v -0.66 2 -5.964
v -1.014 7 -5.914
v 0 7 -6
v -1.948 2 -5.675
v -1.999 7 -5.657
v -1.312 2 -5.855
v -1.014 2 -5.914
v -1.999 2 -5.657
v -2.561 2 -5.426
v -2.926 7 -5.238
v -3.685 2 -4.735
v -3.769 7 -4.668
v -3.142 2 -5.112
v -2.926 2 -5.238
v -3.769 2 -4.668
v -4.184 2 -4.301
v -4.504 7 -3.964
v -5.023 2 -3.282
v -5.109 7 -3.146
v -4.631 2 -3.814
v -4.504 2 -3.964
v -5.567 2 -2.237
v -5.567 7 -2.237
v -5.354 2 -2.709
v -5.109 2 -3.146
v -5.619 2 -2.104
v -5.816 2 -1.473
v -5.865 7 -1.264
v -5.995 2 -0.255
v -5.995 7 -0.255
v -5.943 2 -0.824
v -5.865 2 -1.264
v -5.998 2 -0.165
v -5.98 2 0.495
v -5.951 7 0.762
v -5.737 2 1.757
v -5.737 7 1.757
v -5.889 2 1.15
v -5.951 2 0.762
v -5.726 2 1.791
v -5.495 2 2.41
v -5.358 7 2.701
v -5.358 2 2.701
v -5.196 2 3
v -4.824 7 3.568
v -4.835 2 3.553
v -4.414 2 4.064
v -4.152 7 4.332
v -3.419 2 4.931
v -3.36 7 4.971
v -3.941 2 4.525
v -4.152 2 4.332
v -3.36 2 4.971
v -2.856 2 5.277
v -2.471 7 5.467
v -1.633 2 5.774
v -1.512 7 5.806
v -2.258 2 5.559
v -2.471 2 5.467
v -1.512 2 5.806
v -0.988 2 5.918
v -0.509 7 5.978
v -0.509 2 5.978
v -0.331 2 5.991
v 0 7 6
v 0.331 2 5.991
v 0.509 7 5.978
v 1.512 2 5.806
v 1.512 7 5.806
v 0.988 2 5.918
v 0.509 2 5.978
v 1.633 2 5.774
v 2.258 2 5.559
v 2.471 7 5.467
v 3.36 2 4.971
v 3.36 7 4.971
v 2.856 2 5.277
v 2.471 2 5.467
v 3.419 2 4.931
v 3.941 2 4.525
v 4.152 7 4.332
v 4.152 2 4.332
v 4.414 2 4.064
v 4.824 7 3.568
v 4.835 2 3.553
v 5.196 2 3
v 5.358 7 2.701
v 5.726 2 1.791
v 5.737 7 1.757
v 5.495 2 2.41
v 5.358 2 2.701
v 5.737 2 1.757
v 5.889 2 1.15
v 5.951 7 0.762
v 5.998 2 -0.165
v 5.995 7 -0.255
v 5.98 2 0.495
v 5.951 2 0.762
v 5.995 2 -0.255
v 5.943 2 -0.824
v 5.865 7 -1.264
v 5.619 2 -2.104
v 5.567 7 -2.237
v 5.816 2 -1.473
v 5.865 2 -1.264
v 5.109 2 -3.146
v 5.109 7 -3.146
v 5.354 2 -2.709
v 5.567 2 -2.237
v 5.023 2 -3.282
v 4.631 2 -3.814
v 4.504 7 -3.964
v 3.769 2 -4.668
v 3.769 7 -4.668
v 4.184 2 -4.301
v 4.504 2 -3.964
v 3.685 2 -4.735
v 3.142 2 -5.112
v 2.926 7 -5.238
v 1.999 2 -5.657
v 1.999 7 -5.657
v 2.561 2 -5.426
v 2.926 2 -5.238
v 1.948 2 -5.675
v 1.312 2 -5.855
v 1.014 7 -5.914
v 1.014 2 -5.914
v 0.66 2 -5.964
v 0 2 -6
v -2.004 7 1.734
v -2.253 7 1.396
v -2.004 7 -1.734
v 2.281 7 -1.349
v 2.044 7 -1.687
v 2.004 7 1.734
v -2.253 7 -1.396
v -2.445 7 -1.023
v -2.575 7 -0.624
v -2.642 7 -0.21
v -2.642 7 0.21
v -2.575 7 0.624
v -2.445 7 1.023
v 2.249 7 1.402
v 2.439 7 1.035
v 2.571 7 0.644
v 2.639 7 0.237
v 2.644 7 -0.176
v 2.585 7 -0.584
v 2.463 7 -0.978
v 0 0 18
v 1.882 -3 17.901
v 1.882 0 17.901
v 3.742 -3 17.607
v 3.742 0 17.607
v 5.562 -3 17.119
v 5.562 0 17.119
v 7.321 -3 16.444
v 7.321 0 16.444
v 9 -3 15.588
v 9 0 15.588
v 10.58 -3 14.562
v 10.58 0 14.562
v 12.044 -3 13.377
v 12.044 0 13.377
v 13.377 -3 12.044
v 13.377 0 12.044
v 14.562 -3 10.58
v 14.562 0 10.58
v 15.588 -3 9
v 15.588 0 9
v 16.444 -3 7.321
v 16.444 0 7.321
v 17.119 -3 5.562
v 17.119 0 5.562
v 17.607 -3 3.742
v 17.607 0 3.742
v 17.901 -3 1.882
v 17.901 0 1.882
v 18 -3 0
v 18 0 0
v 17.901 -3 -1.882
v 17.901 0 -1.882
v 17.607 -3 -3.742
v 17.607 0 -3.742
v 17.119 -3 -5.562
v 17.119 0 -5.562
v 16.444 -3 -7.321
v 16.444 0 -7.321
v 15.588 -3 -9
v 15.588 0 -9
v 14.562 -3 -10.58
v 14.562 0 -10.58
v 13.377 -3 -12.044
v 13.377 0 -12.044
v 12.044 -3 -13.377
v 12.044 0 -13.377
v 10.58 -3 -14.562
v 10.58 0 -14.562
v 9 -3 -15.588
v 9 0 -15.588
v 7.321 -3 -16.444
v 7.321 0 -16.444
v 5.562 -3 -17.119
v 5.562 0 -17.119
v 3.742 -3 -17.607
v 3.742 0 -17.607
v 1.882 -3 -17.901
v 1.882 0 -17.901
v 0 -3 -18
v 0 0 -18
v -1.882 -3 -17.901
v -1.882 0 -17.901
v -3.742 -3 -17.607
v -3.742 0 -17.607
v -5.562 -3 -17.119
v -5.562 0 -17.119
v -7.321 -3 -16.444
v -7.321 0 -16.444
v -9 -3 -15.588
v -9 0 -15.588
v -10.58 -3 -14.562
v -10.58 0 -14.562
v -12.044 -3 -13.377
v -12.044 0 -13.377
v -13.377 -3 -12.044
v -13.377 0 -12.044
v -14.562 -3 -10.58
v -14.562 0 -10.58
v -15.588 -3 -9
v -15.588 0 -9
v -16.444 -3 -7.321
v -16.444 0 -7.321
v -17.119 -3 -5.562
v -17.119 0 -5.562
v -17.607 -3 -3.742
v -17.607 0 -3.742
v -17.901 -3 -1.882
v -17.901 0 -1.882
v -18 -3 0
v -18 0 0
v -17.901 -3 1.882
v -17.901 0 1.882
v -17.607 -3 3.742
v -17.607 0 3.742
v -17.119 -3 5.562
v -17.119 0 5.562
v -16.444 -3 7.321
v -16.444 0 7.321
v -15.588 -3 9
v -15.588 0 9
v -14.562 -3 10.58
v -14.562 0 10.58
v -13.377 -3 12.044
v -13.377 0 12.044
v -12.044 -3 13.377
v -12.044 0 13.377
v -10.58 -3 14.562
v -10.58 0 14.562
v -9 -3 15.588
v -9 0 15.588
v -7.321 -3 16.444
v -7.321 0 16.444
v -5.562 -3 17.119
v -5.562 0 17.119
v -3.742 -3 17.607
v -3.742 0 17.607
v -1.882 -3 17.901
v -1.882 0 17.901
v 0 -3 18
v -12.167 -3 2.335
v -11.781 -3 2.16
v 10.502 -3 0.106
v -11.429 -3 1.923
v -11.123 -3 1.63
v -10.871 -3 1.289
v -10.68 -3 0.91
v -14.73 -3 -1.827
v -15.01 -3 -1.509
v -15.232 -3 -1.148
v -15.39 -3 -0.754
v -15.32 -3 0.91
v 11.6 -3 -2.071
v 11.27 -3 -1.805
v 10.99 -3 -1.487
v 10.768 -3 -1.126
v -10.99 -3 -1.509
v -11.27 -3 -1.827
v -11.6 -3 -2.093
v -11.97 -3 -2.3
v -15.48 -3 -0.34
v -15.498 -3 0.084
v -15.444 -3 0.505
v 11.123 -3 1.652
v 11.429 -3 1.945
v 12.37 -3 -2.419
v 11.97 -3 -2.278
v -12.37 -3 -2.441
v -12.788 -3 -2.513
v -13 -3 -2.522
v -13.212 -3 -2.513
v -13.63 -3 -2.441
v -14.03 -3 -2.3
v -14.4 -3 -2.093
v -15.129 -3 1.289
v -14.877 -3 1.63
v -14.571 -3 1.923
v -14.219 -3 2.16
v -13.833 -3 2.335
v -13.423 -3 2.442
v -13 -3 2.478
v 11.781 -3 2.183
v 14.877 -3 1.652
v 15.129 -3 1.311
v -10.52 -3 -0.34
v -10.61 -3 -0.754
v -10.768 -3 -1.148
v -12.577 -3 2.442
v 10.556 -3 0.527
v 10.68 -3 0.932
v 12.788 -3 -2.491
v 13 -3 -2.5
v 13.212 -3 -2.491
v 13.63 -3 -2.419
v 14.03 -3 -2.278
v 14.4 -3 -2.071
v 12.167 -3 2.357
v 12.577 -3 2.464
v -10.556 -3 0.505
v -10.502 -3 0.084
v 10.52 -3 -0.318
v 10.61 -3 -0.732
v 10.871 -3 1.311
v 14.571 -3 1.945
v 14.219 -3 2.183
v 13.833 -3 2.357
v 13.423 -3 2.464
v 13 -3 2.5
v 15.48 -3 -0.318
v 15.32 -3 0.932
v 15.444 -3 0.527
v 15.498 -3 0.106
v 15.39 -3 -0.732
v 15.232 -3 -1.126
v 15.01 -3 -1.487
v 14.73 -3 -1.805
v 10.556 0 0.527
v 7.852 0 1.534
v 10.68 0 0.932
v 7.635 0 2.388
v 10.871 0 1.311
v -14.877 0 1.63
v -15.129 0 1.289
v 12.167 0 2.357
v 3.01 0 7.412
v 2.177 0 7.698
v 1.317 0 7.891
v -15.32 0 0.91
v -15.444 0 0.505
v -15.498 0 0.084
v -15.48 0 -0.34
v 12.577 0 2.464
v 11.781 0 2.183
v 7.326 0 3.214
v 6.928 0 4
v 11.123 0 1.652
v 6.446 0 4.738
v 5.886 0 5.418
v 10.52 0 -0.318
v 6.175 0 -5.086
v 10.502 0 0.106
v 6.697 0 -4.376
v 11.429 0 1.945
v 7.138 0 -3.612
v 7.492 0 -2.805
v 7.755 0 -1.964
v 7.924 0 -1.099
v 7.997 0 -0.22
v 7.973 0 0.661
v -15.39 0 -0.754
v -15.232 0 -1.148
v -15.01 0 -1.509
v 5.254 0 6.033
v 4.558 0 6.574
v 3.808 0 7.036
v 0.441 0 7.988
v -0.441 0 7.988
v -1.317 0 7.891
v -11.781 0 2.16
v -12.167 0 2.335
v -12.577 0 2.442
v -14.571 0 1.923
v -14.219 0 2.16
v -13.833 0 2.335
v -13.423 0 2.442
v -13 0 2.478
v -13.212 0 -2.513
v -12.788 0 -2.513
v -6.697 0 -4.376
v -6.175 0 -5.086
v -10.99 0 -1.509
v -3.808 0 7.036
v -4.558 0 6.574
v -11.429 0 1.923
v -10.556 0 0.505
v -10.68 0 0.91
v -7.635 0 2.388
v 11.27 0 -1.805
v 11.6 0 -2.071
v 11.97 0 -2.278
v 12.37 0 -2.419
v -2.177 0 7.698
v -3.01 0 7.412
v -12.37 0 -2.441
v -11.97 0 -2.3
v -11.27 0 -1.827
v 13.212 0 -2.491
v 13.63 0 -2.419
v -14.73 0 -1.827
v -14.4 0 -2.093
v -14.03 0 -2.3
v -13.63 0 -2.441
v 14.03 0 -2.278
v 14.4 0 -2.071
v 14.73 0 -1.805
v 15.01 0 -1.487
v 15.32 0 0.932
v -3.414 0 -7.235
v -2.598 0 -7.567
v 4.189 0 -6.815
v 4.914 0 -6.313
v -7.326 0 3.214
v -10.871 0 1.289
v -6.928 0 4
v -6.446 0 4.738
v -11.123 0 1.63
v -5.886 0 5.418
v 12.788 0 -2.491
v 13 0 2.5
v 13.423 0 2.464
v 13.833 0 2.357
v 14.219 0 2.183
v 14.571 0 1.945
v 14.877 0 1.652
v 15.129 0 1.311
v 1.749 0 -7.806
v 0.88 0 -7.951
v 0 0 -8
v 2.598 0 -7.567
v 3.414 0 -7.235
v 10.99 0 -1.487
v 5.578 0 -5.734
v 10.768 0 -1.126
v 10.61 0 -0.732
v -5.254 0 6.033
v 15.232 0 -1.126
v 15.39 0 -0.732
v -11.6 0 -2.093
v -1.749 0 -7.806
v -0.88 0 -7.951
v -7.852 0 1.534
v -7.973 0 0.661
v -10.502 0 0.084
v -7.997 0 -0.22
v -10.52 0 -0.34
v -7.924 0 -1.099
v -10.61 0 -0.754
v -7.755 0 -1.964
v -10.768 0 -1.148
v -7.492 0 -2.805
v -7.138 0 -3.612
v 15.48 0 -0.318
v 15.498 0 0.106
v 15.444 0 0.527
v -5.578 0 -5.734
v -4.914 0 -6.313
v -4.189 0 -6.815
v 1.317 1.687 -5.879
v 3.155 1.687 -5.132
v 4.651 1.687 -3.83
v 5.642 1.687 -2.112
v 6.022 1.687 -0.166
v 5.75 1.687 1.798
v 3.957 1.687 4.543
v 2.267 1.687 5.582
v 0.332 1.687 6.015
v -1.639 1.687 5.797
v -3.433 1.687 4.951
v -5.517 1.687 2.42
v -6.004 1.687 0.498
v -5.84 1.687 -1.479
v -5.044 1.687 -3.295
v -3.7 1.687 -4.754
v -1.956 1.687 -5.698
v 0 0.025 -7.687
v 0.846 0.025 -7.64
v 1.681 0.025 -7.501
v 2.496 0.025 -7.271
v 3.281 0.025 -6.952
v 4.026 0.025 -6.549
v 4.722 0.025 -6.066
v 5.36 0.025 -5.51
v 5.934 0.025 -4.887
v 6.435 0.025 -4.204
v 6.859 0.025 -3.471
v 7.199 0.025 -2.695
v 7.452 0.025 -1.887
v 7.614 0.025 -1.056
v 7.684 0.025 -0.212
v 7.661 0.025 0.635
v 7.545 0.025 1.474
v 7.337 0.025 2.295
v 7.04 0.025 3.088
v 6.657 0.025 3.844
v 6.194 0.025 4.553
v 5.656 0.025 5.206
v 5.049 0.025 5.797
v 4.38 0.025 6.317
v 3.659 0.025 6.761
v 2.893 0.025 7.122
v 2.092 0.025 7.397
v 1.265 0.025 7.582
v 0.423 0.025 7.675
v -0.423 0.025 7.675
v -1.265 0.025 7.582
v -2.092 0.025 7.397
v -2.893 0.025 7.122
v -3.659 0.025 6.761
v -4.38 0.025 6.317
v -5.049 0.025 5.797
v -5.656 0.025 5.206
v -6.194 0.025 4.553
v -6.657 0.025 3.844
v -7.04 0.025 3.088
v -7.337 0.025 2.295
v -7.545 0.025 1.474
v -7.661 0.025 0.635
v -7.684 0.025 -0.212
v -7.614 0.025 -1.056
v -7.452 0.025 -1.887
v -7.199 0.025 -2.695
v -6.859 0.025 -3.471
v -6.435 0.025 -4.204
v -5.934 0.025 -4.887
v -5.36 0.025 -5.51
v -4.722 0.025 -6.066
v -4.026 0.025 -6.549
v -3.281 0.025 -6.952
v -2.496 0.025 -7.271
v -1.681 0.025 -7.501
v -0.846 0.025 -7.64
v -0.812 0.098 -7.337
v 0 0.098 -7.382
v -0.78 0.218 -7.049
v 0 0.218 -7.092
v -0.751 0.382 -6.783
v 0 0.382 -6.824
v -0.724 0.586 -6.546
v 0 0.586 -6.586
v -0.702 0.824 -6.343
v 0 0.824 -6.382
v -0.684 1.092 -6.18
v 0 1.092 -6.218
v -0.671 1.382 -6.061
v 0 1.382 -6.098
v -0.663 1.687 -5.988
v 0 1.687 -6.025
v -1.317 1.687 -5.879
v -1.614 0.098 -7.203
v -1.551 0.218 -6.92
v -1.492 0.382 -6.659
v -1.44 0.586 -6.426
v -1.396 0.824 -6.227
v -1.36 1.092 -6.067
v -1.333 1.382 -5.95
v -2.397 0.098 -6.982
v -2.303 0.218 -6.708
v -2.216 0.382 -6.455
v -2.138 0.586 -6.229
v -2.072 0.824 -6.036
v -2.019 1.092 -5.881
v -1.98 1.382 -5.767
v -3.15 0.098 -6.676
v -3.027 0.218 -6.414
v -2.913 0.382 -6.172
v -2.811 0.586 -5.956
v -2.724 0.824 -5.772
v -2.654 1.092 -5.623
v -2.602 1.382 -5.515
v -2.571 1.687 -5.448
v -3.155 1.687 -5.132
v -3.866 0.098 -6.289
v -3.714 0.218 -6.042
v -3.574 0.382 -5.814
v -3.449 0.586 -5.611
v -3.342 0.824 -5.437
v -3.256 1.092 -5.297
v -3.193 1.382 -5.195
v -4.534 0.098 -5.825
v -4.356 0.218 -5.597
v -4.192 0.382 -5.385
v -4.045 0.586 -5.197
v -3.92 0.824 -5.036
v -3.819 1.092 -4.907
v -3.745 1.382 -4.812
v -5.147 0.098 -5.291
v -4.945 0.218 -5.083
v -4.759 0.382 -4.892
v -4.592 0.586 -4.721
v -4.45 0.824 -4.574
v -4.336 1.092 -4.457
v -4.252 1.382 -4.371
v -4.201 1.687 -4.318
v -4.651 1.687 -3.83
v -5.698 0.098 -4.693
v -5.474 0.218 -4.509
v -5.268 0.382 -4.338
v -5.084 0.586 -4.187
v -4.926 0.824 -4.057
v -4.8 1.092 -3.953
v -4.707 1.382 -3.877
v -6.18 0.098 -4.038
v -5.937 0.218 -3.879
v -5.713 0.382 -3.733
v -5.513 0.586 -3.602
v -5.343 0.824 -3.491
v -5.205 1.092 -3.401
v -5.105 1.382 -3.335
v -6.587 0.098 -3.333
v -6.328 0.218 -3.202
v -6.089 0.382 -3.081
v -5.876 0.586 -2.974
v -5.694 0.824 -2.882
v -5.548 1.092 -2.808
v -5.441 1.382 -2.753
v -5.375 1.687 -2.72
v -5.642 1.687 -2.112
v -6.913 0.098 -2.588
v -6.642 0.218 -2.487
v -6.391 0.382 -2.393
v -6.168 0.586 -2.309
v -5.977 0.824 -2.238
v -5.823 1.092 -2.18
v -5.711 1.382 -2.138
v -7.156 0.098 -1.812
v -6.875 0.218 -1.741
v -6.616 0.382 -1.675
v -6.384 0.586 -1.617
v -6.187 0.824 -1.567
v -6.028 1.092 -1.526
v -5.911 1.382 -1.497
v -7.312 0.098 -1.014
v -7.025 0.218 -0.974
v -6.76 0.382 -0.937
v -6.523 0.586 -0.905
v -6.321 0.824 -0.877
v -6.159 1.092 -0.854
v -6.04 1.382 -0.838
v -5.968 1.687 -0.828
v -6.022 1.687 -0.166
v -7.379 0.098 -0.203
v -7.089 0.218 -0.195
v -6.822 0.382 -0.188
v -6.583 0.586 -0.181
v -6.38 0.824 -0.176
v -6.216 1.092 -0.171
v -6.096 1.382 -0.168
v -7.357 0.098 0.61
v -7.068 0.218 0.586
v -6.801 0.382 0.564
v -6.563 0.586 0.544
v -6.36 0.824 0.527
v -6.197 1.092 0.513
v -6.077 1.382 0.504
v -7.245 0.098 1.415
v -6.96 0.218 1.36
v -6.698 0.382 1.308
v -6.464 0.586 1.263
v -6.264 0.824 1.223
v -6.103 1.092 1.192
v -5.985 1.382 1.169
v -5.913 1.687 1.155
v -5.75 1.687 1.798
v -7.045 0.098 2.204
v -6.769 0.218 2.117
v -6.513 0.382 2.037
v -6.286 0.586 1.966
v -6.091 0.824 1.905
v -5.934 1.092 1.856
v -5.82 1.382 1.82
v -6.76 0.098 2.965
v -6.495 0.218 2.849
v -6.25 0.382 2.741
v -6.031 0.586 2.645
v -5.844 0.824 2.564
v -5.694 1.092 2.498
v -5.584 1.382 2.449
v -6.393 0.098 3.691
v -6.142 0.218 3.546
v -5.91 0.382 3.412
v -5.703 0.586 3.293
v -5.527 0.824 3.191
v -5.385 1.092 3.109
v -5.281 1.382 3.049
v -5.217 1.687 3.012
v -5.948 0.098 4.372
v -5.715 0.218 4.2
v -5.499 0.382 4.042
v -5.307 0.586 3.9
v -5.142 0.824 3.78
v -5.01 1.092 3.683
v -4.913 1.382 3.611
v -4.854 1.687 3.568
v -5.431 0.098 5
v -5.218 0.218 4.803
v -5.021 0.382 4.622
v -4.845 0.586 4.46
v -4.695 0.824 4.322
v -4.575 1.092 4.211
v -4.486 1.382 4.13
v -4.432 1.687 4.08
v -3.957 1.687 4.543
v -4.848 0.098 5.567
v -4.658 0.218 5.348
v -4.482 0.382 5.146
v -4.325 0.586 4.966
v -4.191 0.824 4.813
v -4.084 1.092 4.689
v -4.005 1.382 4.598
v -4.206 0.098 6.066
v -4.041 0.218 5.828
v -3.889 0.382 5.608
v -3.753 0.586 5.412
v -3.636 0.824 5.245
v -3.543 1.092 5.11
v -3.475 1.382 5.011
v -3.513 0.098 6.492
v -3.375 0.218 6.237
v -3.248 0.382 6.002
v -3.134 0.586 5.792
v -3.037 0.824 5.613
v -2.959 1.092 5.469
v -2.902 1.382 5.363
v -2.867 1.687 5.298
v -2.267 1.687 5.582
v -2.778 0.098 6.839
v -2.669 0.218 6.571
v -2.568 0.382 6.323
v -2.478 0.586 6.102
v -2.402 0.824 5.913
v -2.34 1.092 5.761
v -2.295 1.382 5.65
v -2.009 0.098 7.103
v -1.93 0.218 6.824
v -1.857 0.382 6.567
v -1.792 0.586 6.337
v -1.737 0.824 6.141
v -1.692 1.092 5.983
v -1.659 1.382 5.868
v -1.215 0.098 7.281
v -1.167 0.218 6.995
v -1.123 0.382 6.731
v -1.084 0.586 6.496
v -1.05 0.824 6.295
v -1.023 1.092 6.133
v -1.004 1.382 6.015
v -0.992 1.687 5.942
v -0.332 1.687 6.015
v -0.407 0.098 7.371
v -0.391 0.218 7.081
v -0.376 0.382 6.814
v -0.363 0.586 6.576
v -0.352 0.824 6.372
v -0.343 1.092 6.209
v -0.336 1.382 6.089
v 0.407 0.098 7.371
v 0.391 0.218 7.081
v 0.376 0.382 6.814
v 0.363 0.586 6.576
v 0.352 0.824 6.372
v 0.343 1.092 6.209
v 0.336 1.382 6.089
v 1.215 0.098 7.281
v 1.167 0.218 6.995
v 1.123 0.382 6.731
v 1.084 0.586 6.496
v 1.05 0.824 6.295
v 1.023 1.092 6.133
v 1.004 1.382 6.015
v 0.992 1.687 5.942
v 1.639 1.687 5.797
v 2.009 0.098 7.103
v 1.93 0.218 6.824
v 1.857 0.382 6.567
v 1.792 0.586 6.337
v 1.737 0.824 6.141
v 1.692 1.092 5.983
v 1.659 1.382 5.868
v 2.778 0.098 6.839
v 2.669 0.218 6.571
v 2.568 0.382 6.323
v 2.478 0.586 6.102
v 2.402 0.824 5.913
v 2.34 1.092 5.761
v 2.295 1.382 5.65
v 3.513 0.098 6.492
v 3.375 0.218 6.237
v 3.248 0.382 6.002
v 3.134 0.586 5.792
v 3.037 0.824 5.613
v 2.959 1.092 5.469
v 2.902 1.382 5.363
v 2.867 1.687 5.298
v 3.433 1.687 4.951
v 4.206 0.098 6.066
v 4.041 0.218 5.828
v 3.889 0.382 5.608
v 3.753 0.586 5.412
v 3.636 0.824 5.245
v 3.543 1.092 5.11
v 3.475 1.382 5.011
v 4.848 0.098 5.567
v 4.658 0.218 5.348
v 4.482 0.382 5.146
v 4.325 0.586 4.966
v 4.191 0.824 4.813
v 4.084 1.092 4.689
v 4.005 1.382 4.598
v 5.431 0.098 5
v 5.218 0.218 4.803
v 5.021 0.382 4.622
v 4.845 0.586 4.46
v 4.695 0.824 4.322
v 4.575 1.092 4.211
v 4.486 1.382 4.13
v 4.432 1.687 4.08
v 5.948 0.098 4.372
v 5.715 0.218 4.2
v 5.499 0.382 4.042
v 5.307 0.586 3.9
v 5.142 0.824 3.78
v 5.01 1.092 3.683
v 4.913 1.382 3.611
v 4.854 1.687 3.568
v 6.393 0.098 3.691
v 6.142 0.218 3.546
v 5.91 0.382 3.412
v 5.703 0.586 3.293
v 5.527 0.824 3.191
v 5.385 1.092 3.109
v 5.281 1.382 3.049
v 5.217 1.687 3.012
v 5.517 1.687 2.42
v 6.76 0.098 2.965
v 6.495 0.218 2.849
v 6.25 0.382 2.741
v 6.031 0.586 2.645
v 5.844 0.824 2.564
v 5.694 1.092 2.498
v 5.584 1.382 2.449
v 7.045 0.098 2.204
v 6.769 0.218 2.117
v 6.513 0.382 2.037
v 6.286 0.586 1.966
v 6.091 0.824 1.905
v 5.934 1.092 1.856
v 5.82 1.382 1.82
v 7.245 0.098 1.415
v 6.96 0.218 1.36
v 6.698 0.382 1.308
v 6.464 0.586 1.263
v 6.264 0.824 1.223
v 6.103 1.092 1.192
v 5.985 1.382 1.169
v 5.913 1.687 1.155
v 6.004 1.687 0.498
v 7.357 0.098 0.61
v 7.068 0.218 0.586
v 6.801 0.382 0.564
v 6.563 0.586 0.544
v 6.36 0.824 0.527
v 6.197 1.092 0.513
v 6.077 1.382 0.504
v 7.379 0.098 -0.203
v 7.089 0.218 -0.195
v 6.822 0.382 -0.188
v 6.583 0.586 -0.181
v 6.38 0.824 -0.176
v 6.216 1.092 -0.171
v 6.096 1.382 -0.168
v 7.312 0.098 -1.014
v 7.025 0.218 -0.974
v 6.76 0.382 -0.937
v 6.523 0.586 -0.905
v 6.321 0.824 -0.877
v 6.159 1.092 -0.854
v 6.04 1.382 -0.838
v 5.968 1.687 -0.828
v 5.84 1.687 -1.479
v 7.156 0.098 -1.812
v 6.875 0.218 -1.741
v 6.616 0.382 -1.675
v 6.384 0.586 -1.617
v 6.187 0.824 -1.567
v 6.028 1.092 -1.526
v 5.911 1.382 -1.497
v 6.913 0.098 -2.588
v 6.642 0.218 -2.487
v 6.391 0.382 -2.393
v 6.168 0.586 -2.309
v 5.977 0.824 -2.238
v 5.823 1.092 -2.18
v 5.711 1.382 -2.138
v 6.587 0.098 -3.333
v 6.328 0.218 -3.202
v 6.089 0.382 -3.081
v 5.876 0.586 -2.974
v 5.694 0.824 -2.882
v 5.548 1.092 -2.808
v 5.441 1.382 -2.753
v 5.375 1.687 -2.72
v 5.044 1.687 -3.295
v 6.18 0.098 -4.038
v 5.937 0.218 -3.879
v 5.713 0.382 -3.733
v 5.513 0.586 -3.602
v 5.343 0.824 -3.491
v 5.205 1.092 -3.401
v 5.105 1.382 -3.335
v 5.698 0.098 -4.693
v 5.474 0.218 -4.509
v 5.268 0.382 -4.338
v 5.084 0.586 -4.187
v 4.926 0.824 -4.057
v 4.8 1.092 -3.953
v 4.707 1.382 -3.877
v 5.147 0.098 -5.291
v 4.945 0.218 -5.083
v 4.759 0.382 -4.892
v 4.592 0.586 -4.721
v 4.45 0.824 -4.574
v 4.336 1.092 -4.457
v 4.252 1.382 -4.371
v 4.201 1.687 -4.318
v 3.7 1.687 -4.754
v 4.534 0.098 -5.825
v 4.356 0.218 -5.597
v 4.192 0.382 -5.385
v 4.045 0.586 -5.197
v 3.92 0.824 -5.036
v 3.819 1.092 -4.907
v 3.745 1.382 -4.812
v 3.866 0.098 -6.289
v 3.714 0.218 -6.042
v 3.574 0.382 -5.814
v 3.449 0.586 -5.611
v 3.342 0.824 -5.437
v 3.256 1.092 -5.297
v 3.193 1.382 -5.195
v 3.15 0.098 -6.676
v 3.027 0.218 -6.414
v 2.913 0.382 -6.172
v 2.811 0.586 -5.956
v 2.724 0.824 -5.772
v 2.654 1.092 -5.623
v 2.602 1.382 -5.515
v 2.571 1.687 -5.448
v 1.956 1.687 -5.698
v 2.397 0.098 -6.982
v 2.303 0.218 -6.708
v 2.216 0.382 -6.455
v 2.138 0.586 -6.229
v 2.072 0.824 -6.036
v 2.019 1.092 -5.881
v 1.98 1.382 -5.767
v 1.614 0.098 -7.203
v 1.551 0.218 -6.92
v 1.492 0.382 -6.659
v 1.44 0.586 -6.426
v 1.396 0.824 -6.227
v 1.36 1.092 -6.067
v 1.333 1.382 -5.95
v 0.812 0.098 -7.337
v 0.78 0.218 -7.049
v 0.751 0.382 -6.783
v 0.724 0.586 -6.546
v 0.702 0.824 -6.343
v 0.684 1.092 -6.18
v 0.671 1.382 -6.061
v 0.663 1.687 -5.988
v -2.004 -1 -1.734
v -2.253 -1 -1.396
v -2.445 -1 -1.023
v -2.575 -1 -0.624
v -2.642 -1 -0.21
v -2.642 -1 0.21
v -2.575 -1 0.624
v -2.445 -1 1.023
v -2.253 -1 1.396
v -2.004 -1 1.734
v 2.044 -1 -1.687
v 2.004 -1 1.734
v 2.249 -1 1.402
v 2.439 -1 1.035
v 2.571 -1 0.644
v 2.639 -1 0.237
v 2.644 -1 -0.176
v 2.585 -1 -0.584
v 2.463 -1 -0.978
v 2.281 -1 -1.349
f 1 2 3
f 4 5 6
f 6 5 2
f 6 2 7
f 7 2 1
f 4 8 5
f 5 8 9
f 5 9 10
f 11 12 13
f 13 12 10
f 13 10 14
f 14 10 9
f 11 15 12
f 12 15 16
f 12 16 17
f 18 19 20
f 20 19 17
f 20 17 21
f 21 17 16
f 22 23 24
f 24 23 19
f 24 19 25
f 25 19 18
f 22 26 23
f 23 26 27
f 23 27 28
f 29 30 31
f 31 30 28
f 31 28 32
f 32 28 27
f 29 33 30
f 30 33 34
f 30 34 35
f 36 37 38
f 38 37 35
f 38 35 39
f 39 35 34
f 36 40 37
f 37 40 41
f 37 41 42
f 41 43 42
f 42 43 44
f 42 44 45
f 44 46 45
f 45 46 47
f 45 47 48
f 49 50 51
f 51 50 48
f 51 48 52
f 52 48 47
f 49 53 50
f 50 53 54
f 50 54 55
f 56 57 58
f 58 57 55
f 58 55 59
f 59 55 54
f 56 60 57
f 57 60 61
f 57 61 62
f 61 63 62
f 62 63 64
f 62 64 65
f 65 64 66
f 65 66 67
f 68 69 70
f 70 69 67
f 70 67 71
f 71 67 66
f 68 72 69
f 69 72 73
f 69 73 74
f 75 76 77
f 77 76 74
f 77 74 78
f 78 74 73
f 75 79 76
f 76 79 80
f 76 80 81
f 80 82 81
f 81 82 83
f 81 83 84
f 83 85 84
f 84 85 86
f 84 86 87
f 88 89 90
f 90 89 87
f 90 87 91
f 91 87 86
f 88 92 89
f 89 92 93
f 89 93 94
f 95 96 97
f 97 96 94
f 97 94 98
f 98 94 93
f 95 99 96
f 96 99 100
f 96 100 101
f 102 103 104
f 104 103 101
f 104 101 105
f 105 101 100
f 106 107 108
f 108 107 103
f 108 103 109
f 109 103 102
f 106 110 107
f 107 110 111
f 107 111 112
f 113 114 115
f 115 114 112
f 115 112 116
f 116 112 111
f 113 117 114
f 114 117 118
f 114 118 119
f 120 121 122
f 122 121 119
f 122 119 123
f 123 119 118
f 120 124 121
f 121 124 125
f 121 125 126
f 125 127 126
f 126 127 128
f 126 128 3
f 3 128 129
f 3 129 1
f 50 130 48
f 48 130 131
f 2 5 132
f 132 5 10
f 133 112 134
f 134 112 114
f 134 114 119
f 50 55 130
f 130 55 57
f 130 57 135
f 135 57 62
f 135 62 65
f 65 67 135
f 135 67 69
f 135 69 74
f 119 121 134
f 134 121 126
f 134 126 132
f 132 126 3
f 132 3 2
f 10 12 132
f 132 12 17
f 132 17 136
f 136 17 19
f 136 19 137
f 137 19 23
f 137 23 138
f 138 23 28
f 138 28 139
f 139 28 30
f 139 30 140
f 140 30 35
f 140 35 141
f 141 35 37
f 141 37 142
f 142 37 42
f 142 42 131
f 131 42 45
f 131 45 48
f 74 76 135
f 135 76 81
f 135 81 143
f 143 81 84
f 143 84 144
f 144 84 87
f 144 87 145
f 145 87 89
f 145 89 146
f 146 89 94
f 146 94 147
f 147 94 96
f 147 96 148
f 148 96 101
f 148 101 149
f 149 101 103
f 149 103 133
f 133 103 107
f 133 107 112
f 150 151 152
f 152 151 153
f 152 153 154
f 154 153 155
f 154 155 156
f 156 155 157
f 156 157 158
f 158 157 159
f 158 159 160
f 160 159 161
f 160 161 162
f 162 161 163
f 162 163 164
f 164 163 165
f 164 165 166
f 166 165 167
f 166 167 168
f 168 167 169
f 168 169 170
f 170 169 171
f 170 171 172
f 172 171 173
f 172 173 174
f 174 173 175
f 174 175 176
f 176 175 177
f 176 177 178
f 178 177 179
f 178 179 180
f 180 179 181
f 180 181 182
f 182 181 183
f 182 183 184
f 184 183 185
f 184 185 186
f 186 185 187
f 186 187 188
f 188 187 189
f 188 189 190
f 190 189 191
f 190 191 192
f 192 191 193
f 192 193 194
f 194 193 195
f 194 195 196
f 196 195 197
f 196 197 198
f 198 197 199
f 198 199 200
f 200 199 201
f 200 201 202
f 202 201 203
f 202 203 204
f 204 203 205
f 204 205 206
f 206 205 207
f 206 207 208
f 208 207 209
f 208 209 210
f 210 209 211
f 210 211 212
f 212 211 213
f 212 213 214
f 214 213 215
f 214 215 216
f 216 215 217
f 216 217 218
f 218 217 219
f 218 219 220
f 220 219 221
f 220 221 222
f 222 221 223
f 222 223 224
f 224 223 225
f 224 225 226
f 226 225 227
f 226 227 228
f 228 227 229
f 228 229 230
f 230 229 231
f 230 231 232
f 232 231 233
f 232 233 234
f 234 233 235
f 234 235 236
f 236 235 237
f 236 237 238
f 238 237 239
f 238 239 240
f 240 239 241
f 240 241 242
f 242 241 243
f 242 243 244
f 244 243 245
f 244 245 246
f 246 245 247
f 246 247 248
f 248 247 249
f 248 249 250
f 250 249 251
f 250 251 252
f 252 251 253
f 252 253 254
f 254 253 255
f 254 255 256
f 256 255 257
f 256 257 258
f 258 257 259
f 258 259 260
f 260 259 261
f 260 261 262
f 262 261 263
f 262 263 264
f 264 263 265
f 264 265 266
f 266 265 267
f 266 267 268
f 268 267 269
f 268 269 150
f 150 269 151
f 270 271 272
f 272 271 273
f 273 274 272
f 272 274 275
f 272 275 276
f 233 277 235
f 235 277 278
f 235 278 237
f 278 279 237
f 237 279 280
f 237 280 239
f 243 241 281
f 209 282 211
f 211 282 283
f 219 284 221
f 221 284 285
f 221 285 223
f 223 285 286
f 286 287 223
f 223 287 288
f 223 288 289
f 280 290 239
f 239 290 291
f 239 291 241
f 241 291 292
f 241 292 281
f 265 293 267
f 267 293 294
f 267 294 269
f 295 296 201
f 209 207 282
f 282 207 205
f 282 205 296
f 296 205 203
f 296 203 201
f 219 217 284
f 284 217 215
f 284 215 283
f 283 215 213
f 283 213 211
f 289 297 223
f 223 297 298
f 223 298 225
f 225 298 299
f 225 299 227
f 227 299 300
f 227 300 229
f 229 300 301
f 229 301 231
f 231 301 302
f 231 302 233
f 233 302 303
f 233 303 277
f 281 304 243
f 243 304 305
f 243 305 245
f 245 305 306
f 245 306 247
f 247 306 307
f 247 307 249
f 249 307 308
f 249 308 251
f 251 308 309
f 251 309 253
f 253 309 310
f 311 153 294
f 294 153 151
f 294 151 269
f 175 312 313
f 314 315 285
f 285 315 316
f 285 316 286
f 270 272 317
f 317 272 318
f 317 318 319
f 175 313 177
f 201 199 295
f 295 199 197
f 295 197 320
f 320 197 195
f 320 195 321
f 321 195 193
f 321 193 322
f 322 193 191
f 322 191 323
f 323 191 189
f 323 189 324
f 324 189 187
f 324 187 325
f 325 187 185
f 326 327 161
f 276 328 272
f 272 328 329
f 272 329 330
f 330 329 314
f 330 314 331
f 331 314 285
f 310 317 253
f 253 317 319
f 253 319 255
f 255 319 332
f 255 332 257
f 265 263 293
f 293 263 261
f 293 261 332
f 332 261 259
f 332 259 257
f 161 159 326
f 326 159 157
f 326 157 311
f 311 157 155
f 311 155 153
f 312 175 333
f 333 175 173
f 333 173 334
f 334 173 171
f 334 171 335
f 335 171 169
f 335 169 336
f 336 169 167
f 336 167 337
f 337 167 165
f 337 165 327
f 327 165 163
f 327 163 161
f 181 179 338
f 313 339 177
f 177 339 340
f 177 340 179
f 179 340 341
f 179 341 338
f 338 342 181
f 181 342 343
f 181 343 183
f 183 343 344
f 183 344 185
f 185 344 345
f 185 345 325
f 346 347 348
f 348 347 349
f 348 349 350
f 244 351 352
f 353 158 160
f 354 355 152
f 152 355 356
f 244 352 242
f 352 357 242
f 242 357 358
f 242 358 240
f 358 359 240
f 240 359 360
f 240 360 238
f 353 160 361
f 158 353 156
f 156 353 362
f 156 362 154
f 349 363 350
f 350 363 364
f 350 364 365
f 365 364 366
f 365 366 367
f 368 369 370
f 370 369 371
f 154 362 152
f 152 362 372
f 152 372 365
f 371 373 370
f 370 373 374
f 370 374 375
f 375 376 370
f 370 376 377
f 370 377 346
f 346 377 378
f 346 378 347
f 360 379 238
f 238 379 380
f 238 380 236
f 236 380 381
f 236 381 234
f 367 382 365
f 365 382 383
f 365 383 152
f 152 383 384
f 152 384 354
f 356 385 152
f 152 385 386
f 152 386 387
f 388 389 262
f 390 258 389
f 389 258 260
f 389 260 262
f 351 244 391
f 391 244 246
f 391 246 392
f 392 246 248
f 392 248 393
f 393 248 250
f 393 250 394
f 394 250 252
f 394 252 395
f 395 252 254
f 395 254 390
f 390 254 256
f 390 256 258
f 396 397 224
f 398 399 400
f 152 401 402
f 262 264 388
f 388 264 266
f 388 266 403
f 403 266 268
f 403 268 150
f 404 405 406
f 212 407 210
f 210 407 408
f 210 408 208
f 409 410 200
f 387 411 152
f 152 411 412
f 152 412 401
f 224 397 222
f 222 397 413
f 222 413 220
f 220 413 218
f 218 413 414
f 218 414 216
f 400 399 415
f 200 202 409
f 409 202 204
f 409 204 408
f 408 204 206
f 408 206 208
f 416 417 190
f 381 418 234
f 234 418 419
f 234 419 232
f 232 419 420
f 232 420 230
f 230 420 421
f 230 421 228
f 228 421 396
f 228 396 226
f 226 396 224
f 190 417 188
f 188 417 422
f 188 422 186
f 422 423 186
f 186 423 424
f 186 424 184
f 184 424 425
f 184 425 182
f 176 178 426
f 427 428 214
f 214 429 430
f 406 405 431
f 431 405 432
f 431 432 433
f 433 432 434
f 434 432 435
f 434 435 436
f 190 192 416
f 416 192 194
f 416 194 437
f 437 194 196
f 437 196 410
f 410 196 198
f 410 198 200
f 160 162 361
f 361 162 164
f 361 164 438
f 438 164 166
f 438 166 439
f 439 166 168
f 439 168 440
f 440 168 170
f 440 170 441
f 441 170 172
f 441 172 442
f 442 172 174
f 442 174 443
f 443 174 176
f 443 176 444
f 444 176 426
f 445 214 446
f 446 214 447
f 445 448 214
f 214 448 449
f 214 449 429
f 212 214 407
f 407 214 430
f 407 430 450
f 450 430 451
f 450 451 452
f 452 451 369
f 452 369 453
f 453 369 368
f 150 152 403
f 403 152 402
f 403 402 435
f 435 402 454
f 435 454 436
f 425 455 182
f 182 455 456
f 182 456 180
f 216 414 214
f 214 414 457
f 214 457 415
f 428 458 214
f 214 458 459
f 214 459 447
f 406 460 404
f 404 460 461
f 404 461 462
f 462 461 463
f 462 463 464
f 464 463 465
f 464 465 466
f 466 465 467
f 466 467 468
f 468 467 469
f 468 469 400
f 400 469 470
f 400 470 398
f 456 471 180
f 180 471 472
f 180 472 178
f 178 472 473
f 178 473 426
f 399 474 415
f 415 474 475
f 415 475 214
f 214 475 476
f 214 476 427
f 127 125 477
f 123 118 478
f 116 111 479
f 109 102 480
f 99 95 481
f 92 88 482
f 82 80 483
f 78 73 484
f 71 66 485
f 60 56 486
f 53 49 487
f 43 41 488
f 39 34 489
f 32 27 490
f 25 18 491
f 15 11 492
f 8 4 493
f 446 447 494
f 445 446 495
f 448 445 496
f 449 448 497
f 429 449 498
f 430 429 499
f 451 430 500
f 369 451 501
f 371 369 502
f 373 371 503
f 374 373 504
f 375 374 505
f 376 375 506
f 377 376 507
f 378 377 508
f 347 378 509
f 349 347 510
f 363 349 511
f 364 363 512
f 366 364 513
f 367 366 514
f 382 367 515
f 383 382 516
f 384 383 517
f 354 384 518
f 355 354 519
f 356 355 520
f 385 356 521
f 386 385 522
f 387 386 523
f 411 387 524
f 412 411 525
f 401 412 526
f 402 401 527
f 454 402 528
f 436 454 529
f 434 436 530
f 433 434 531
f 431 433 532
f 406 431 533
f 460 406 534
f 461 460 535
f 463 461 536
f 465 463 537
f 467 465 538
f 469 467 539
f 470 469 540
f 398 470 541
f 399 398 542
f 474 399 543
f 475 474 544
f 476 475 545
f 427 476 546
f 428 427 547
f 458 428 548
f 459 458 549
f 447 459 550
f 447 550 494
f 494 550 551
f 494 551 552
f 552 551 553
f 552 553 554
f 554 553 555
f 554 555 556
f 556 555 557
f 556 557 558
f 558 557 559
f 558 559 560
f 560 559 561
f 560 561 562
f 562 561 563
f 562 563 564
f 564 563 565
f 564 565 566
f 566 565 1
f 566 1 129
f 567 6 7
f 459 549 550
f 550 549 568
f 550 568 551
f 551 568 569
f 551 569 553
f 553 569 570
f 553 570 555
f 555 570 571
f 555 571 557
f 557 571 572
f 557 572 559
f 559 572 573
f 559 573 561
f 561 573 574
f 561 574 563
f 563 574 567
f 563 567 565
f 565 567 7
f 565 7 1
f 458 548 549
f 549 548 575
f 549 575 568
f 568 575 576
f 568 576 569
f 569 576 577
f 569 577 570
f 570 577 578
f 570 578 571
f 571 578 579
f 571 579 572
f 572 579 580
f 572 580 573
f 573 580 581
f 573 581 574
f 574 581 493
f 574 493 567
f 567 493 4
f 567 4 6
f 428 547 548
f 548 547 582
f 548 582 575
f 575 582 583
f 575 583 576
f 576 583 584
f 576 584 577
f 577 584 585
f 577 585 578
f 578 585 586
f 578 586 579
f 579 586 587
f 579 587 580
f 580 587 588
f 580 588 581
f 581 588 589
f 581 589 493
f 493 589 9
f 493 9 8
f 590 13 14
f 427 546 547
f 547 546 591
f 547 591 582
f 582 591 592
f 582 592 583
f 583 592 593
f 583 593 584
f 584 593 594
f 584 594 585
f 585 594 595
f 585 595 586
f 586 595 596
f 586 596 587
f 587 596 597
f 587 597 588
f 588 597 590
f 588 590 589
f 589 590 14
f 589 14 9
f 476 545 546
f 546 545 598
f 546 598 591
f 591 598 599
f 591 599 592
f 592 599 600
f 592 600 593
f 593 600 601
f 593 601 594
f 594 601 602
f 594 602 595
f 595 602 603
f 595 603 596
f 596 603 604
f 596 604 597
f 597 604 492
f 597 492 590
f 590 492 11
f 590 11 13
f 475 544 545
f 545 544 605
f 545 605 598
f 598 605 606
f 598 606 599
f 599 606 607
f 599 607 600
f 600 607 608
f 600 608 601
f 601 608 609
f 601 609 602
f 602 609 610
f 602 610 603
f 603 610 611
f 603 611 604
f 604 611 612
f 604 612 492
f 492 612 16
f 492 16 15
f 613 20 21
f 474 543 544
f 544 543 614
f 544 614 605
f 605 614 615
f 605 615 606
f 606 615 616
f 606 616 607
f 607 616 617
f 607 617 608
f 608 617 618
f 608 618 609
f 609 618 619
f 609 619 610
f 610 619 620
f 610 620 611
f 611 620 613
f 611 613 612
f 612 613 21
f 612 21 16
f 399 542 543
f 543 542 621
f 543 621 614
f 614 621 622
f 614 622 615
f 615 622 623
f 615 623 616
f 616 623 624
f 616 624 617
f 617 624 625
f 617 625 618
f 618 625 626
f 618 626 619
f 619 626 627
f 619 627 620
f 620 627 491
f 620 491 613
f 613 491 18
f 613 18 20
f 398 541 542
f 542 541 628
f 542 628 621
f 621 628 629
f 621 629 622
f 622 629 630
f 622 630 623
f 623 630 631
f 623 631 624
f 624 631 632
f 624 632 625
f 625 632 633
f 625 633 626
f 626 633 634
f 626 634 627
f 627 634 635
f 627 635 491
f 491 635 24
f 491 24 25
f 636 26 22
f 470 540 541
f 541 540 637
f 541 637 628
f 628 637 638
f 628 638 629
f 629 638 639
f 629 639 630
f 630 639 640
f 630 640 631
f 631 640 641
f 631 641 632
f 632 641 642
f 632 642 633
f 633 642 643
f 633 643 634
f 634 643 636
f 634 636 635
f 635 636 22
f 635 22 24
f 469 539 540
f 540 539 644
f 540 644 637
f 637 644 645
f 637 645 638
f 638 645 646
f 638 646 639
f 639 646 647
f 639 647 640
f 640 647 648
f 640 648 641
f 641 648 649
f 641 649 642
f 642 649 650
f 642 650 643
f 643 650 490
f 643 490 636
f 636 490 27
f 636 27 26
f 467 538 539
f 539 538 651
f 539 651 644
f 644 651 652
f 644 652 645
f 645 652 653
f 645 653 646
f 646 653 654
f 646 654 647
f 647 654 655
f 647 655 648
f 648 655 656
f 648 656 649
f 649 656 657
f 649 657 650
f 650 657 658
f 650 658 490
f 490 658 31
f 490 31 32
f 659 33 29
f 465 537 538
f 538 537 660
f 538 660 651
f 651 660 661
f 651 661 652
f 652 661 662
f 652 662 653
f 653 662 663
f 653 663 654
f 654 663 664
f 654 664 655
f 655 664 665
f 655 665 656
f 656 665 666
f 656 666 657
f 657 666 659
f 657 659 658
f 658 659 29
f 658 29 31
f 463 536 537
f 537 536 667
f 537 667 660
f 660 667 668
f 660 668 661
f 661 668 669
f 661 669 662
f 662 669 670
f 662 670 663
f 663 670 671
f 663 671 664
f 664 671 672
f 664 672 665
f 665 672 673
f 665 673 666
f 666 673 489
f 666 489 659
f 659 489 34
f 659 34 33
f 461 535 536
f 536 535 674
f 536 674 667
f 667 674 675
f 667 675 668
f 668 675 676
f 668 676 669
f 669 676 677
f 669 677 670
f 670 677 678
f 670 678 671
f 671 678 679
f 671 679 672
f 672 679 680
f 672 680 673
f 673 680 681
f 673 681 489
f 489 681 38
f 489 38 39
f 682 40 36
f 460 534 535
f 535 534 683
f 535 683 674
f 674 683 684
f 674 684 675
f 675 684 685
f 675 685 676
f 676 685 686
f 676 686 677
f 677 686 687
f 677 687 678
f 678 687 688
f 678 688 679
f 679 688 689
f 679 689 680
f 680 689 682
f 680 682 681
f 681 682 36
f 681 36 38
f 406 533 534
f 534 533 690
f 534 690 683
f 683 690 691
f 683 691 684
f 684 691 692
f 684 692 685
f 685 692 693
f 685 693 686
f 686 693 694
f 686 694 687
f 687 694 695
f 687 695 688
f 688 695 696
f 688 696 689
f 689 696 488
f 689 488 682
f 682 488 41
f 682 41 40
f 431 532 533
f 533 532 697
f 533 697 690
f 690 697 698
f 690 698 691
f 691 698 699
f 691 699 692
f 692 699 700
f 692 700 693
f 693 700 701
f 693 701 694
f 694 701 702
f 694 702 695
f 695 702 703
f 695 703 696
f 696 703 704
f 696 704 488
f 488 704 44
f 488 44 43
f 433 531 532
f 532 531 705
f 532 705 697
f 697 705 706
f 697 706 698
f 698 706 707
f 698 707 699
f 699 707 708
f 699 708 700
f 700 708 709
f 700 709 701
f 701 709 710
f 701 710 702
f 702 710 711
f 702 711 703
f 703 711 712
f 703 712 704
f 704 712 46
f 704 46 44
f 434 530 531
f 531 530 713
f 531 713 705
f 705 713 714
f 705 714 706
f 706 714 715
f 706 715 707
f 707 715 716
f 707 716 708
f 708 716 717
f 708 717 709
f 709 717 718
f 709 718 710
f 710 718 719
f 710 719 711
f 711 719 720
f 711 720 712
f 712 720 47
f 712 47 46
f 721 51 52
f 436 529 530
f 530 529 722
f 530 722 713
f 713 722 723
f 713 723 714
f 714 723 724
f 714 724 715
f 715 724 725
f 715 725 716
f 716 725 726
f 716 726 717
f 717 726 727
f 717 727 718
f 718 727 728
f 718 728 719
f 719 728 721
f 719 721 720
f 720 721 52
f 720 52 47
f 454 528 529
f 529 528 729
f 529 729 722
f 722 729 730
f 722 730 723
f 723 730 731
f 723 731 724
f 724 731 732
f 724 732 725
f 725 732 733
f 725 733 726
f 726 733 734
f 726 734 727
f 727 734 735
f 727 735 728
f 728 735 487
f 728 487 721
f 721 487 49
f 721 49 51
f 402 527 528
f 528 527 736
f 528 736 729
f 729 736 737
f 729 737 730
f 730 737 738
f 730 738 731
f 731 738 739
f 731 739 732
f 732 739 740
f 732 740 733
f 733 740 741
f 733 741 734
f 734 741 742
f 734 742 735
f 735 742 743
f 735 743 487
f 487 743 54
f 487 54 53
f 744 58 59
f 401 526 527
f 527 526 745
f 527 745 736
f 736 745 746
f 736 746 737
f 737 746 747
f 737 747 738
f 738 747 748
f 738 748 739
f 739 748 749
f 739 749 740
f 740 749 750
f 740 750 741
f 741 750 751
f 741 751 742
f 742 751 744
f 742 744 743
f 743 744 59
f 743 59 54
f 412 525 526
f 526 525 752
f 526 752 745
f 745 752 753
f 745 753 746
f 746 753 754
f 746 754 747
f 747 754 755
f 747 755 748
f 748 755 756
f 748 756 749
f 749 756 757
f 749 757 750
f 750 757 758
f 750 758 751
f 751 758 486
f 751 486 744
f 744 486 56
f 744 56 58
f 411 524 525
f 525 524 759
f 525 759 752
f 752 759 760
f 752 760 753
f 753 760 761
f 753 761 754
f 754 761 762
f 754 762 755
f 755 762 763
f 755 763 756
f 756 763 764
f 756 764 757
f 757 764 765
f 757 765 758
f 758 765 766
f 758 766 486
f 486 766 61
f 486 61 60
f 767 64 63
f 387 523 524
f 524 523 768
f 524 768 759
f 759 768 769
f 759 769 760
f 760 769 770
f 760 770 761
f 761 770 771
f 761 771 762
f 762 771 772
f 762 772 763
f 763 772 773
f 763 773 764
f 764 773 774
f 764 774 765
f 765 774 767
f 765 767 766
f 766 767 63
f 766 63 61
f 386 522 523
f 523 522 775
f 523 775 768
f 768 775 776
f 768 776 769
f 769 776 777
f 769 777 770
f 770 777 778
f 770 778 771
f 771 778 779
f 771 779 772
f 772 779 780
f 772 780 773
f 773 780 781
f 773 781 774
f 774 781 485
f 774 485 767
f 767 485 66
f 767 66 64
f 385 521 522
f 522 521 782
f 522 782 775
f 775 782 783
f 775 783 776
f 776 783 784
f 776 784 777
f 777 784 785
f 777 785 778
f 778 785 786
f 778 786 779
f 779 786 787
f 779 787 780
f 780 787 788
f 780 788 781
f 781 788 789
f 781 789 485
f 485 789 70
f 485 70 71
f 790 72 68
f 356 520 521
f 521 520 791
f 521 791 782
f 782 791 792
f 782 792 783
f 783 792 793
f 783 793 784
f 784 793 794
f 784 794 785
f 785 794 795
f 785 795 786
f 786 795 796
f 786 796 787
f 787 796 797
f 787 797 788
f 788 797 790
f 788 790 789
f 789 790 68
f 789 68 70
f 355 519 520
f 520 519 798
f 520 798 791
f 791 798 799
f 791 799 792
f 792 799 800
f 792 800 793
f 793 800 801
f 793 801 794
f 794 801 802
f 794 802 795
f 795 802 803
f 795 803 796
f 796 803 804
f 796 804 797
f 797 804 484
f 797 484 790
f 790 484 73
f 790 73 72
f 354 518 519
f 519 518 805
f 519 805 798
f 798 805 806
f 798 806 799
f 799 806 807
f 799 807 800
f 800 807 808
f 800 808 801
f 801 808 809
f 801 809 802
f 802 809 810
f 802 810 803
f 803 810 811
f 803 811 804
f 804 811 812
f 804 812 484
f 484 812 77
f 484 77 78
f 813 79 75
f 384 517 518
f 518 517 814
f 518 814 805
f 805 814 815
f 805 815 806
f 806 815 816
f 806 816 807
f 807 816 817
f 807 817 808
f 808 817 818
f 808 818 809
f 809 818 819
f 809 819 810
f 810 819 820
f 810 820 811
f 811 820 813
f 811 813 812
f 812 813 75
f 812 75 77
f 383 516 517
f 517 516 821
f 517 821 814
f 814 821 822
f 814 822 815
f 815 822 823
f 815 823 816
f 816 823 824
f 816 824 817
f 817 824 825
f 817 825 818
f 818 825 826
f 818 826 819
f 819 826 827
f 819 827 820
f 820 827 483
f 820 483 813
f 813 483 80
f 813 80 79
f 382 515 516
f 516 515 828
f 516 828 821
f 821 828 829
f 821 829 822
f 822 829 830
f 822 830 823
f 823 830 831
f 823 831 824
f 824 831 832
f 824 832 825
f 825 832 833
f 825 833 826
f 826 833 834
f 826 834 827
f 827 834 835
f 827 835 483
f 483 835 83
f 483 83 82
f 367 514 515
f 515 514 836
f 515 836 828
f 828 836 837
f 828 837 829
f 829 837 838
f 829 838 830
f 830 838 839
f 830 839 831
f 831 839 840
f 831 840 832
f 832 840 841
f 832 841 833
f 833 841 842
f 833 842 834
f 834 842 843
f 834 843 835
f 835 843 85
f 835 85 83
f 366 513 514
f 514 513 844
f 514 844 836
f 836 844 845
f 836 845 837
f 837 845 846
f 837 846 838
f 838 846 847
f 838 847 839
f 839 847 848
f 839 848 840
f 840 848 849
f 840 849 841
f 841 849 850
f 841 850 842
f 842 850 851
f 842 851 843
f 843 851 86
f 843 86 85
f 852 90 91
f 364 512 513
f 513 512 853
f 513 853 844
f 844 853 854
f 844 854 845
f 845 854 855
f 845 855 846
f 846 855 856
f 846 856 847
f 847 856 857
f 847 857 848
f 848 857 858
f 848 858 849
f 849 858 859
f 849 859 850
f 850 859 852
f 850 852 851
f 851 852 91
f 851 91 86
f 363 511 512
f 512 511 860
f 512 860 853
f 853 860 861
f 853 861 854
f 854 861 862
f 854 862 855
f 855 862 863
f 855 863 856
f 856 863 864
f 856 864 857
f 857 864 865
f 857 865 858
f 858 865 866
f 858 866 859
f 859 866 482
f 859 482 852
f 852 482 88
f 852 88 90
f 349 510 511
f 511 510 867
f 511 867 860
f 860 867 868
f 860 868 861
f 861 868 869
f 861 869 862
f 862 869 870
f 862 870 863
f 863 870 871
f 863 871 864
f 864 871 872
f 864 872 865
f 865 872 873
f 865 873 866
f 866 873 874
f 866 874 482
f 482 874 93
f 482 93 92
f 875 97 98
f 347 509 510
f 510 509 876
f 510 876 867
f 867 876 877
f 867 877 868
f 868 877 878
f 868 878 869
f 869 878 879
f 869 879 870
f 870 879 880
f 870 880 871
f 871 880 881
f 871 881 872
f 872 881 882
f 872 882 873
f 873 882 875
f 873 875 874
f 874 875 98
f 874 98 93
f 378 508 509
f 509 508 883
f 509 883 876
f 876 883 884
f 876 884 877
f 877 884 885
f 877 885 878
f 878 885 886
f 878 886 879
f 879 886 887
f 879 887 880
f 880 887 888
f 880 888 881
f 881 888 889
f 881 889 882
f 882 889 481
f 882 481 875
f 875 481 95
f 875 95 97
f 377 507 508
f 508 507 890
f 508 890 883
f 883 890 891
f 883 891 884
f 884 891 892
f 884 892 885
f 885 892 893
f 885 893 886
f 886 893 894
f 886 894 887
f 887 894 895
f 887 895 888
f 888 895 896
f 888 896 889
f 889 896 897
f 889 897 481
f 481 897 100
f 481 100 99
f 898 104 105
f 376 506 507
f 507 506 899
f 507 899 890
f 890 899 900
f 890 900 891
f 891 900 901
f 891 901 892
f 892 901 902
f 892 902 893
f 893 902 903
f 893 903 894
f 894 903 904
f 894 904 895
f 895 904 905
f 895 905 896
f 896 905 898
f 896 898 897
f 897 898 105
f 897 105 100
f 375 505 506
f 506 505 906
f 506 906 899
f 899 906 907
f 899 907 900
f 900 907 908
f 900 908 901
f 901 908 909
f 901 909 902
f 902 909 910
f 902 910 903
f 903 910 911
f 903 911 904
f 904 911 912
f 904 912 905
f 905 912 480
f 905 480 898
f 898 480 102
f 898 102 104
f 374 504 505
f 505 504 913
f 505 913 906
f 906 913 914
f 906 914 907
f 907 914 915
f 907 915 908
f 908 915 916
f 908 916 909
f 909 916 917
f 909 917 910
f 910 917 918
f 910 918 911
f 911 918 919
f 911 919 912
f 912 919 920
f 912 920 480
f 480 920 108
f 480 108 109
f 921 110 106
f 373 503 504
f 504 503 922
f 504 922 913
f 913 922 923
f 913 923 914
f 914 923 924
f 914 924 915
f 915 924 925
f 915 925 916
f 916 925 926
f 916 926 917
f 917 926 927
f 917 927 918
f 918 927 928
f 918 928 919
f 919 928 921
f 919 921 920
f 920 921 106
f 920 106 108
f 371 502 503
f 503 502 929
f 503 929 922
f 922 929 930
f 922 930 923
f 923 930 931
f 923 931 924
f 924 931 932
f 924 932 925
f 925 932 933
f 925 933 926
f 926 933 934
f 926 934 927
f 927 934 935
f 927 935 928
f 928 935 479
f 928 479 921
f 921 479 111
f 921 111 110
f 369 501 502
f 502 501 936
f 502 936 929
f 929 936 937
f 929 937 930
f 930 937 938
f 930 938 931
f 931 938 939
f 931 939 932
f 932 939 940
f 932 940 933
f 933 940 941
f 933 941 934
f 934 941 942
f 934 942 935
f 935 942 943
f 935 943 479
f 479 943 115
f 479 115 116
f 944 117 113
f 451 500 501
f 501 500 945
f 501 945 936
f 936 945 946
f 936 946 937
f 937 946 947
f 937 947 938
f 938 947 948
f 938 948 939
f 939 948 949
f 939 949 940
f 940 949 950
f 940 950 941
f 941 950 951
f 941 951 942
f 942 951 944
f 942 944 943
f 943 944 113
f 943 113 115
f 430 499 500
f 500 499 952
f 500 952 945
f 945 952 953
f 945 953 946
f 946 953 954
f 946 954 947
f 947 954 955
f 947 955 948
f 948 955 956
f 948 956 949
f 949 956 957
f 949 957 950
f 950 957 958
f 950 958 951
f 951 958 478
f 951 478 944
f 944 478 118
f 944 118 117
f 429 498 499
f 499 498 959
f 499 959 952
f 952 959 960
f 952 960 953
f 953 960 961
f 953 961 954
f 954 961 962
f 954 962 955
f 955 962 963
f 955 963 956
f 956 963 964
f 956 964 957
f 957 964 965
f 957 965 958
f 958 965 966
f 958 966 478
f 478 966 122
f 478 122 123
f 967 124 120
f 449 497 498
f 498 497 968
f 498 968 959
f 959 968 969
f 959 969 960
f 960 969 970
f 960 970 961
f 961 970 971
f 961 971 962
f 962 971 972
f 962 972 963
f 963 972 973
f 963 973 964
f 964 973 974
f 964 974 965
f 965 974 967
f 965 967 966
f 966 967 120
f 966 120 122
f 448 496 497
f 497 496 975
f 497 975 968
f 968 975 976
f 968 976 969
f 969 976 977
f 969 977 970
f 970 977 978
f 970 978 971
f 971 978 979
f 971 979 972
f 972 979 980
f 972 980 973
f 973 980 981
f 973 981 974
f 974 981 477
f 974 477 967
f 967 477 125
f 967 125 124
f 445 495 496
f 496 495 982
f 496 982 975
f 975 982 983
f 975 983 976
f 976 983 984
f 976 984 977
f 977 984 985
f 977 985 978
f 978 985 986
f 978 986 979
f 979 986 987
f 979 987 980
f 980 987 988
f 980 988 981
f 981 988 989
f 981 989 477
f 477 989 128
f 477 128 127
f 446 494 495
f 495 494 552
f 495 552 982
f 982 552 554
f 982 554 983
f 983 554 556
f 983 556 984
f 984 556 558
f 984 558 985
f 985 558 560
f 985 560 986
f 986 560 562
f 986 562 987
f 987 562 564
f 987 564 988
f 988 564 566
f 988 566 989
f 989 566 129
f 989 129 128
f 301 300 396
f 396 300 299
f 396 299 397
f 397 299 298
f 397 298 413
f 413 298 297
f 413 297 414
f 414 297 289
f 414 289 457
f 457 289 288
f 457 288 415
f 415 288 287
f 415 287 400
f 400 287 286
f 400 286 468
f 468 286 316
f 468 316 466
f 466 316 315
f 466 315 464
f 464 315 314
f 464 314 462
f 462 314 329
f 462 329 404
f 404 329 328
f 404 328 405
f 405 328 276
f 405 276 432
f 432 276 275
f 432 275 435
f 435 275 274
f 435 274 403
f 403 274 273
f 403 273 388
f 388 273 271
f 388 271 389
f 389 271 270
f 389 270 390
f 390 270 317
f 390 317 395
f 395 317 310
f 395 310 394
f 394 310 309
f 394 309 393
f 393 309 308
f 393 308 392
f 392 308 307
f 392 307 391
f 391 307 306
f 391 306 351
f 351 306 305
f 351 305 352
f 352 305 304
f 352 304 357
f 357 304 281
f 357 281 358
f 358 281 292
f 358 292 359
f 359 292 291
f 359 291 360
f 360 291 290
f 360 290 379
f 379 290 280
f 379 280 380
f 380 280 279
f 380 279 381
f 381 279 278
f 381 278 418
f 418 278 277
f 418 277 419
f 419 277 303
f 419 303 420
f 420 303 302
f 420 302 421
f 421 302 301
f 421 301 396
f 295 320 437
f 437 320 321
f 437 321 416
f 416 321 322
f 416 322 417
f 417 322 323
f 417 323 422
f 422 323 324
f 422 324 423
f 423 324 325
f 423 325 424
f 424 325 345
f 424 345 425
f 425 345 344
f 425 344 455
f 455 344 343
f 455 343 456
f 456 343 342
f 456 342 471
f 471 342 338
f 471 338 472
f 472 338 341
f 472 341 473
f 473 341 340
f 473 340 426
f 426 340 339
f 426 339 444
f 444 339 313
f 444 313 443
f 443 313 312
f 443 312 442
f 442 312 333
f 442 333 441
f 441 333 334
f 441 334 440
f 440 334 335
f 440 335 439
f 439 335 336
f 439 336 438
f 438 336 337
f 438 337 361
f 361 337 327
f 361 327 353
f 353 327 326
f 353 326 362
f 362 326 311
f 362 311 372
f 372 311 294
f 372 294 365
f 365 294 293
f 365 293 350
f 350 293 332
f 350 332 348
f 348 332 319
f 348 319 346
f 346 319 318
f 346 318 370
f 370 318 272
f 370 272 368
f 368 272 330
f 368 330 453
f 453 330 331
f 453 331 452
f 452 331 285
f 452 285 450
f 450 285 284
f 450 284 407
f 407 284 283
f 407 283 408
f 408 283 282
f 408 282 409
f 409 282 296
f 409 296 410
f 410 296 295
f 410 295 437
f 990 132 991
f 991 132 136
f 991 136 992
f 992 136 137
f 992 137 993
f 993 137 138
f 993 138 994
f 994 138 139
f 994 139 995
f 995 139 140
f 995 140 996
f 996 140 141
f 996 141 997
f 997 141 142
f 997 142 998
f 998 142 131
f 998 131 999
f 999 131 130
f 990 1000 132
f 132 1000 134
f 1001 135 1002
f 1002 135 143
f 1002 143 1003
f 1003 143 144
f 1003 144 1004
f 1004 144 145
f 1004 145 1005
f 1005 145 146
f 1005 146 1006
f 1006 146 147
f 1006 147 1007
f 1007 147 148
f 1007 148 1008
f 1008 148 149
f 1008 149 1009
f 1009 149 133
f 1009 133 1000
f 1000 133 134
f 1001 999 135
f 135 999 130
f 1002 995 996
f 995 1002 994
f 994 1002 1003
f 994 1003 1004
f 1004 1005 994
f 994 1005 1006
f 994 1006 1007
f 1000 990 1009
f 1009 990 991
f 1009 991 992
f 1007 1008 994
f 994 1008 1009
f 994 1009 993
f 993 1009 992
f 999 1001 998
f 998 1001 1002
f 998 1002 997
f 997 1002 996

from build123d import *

# Parameters (mm, degrees)
SKETCH1_R           = 6
BOSS_EXTRUDE6_DEPTH = 7
SKETCH5_R           = 18
BOSS_EXTRUDE7_DEPTH = 3
CUT_EXTRUDE2_DEPTH  = 6
FILLET1_R           = 2
SKETCH8_R           = 2.5
CUT_EXTRUDE3_DEPTH  = 6
CUT_EXTRUDE4_DEPTH  = 8


with BuildPart() as part:
    # Sketch1 → Boss-Extrude6 (new body)
    with BuildSketch(Plane(origin=(0, 0, 0), x_dir=(1, 0, 0), z_dir=(0, 1, 0))):
        with Locations(Location((0, 0, 0), (0, 0, 270))):
            Circle(SKETCH1_R)
    extrude(amount=BOSS_EXTRUDE6_DEPTH)

    # Sketch5 → Boss-Extrude7 (add)
    with BuildSketch(Plane(origin=(0, 0, 0), x_dir=(-1, 0, 0), z_dir=(0, -1, 0))):
        with Locations(Location((0, 0, 0), (0, 0, 90))):
            Circle(SKETCH5_R)
    extrude(amount=BOSS_EXTRUDE7_DEPTH)

    # Sketch6 → Cut-Extrude2 (cut)
    with BuildSketch(Plane(origin=(0, 7, 0), x_dir=(1, 0, 0), z_dir=(0, 1, 0))):
        with BuildLine():
            Line((1.932582761, 1.5), (-1.932582761, 1.5))
            ThreePointArc((-1.932582761, 1.5), (-1.93394777, 1.498239684), (-1.935311176, 1.496478126))
            ThreePointArc((-1.935311176, 1.496478126), (-2.446399634, -0.002227546), (-1.932582761, -1.5))
            Line((-1.932582761, -1.5), (1.932582761, -1.5))
            ThreePointArc((1.932582761, -1.5), (2.446400648, 0), (1.932582761, 1.5))
        make_face()
    extrude(amount=-CUT_EXTRUDE2_DEPTH, mode=Mode.SUBTRACT)

    # Fillet1
    fillet1_edges = [part.edges().sort_by_distance(p)[0] for p in [
        (0, 0, -6),
    ]]
    fillet(fillet1_edges, radius=FILLET1_R)

    # Sketch8 → Cut-Extrude3 (cut)
    with BuildSketch(Plane(origin=(0, 0, 0), x_dir=(1, 0, 0), z_dir=(0, 1, 0))):
        with Locations(Location((13, 0, 0), (0, 0, 270))):
            Circle(SKETCH8_R)
        with Locations(Location((-13, 0.022078195, 0), (0, 0, 270))):
            Circle(SKETCH8_R)
    extrude(amount=-CUT_EXTRUDE3_DEPTH, mode=Mode.SUBTRACT)

    # Sketch9 → Cut-Extrude4 (cut)
    with BuildSketch(Plane(origin=(0, 7, 0), x_dir=(1, 0, 0), z_dir=(0, 1, 0))):
        with BuildLine():
            Line((-2.004154278, 1.733743242), (2.043845612, 1.686770617))
            ThreePointArc((2.043845612, 1.686770617), (2.649821606, -0.03074829), (2.004154278, -1.733743242))
            Line((2.004154278, -1.733743242), (-2.004154278, -1.733743242))
            ThreePointArc((-2.004154278, -1.733743242), (-2.65, 0), (-2.004154278, 1.733743242))
        make_face()
    extrude(amount=-CUT_EXTRUDE4_DEPTH, mode=Mode.SUBTRACT)


solid = part.part
